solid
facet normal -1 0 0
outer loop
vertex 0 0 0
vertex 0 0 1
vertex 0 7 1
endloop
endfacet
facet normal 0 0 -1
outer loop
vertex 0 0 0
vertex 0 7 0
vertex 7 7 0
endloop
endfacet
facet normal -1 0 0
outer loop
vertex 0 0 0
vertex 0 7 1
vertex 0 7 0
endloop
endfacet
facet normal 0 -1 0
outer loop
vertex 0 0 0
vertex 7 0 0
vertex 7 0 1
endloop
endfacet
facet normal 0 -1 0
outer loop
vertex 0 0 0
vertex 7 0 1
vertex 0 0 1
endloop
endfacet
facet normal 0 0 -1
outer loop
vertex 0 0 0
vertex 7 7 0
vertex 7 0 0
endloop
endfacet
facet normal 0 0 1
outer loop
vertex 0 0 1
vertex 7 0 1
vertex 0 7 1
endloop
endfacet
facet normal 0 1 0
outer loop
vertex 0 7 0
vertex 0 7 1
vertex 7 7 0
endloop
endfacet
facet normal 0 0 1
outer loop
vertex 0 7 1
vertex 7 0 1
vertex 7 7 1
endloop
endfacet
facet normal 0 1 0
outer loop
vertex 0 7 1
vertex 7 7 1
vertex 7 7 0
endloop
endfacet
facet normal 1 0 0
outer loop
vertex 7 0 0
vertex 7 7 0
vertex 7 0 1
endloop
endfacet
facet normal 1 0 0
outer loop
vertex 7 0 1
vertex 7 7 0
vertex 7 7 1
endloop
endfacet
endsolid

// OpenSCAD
/* Warning, this is a very basic generator with a lot of approximation 
input data : [VQFN, QPA, 7x7x1.0mm, 44, , A, C04-01291A]
generated by com.zoubworld.electronics.cad.model3d.Basic
Date : Sun Feb 15 10:50:49 CET 2026
*/

//body
color("black")
translate([0,0,0])
cube([7.0,7.0,1.0], center=false);
